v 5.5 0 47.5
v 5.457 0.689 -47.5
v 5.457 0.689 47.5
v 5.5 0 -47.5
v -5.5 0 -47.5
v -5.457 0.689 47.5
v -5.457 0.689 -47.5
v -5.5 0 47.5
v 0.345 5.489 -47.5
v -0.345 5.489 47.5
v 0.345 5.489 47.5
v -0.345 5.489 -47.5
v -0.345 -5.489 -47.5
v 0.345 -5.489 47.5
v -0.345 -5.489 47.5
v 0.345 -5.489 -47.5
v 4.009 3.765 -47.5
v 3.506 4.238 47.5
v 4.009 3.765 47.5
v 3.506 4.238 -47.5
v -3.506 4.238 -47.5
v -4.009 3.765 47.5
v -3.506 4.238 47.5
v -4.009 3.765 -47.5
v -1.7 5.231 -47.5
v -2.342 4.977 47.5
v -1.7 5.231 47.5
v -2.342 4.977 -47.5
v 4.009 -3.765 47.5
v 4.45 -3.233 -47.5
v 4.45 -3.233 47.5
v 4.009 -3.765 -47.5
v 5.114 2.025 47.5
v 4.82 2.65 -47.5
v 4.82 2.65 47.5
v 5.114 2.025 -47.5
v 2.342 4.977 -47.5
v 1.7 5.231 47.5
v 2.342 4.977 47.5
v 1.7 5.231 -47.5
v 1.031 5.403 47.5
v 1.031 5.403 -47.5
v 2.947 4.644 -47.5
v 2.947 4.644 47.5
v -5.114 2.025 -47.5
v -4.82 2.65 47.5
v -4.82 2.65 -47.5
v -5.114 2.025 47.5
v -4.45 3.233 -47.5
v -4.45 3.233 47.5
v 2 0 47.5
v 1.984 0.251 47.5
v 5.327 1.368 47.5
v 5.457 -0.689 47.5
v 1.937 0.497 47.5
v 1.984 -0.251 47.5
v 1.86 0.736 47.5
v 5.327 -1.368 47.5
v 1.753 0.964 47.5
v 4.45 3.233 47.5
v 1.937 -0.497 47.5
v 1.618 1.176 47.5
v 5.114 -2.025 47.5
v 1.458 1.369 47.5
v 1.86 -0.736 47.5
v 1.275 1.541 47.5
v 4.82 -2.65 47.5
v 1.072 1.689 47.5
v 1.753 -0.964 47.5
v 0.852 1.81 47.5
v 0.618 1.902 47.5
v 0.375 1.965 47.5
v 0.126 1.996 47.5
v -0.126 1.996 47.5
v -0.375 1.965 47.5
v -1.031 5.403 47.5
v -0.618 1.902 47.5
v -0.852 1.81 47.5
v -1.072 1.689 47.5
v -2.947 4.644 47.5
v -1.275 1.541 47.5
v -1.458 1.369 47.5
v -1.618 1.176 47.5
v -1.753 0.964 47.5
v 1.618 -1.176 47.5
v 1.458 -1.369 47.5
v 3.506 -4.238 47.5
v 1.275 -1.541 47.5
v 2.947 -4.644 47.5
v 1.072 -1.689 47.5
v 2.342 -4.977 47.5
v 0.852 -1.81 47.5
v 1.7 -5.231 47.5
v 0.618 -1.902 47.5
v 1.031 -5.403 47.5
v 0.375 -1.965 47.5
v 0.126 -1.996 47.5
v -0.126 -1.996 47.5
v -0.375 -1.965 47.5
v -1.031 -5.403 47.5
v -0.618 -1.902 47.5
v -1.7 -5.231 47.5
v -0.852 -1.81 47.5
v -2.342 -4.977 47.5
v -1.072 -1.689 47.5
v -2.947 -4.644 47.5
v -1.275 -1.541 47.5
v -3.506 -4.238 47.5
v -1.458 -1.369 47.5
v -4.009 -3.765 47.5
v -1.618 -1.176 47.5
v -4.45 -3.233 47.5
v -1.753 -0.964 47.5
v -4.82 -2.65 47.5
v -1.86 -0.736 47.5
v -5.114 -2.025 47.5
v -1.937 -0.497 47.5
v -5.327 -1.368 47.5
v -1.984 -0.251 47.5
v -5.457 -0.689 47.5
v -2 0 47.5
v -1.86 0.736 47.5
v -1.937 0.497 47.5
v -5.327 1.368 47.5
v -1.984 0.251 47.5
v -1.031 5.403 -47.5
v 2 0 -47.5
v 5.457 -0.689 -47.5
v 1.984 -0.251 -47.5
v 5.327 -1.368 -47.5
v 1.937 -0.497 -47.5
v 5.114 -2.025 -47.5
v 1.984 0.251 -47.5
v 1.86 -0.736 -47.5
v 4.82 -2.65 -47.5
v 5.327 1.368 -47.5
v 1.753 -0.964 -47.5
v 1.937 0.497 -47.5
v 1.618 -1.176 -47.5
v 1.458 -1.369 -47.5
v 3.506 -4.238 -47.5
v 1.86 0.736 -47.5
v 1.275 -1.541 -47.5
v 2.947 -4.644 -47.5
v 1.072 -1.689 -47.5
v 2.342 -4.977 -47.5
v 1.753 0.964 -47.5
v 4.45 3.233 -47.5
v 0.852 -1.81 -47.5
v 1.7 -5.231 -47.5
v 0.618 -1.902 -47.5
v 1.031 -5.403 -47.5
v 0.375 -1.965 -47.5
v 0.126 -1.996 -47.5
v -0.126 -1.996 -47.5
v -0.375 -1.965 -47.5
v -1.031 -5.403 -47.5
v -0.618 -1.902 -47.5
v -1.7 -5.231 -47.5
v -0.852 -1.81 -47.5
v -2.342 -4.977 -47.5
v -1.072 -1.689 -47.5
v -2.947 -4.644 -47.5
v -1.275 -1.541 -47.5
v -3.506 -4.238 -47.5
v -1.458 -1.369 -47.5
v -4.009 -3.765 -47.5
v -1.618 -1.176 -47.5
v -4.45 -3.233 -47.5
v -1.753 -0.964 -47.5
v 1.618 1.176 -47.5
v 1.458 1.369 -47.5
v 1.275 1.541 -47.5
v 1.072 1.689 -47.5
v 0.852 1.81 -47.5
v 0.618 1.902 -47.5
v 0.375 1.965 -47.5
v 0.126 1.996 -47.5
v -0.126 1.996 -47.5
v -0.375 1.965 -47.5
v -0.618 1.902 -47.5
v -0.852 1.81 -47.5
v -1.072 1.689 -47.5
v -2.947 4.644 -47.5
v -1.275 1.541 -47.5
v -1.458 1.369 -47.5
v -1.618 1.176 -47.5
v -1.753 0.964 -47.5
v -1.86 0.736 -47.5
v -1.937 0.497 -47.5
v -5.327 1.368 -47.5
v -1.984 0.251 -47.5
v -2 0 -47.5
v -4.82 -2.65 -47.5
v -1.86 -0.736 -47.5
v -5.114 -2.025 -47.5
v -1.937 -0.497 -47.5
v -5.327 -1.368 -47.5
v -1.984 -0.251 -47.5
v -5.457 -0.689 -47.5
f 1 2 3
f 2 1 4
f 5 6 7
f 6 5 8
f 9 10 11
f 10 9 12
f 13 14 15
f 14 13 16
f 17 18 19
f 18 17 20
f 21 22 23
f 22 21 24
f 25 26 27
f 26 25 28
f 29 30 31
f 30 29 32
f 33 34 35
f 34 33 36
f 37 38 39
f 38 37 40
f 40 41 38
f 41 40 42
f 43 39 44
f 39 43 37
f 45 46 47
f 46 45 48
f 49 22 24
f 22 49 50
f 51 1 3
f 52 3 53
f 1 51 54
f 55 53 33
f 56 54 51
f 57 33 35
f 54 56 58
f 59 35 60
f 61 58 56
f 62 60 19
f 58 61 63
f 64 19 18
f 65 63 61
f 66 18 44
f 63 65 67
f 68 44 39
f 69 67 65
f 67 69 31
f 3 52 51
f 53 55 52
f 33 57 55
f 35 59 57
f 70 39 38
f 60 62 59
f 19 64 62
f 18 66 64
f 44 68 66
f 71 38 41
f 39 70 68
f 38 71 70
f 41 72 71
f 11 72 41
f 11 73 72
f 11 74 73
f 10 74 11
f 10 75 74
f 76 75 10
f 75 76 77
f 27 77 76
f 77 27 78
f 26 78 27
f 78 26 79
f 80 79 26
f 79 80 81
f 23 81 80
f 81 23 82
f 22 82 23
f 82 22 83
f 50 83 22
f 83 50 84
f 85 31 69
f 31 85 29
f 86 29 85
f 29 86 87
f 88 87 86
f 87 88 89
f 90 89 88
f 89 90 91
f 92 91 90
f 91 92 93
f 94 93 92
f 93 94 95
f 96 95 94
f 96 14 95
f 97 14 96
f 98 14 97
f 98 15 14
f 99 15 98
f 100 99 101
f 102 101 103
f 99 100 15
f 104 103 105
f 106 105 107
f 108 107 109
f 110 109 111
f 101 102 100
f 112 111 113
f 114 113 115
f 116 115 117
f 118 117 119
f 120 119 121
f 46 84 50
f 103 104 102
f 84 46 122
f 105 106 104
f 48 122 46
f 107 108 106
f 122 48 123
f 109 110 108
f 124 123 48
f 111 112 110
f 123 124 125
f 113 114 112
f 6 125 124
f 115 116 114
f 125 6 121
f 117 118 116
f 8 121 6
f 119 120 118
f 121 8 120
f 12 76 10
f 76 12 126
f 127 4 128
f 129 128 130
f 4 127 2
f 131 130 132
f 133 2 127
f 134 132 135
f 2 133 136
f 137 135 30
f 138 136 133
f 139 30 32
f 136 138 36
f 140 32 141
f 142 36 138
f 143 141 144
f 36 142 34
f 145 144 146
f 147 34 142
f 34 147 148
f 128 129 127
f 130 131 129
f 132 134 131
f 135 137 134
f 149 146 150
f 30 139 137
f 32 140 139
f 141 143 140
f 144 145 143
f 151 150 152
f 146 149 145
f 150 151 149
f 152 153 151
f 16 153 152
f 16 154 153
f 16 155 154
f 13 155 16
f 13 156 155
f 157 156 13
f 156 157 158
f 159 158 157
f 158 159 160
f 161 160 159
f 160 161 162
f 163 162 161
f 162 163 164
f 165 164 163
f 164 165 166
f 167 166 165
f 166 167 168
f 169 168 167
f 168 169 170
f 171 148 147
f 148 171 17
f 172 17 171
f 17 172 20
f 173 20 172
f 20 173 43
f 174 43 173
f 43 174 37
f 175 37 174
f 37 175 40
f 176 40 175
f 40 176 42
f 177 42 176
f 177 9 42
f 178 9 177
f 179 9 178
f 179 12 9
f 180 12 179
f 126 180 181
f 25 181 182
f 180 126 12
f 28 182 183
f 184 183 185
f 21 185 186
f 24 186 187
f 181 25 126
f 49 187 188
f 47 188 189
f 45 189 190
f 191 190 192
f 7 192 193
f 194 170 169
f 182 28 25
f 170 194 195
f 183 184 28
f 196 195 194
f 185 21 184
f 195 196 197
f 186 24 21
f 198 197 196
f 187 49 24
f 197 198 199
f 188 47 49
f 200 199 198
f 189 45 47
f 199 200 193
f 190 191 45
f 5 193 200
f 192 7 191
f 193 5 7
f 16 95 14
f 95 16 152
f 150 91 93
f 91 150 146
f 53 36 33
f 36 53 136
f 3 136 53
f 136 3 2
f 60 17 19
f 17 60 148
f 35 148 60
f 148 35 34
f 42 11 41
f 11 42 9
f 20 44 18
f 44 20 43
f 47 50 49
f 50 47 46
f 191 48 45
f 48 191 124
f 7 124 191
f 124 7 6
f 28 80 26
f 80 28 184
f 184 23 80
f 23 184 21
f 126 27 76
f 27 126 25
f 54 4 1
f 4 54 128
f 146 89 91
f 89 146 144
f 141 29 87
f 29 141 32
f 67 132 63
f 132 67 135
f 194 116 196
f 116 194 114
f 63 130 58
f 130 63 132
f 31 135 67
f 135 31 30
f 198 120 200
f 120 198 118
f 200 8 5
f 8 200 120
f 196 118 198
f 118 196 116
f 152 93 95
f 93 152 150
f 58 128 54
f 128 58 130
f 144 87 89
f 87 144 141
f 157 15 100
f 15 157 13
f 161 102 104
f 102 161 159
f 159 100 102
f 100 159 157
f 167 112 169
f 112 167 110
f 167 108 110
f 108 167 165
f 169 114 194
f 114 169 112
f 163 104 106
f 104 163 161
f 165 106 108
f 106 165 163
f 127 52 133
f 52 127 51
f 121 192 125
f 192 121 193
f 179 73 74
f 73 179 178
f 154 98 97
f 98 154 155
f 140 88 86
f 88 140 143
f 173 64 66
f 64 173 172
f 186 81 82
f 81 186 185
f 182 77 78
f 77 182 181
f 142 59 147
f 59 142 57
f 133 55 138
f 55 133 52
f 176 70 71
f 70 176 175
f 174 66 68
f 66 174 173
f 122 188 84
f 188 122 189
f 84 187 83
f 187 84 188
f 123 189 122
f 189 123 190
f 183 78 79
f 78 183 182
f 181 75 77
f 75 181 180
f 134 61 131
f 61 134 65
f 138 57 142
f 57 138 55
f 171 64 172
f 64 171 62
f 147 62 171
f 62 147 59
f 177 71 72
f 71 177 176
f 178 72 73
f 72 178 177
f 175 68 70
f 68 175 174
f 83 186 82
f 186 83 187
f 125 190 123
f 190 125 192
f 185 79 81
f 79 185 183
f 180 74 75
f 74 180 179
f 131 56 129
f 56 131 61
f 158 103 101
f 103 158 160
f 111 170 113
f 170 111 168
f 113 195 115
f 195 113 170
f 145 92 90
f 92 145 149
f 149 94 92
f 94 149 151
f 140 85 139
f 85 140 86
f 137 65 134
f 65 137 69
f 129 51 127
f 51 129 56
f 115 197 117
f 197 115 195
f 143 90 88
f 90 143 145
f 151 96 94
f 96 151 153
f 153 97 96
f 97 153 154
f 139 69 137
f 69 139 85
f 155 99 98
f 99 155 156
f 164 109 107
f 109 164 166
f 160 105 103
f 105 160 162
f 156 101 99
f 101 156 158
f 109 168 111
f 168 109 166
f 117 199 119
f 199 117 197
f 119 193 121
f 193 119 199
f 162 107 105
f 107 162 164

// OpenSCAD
$fn = 50;


difference() {
	union() {
		translate(v = [0, 0, -47.5000000000]) {
			cylinder(h = 95, r = 5.5000000000);
		}
	}
	union() {
		translate(v = [0, 0, -100.0000000000]) {
			cylinder(h = 200, r = 2);
		}
	}
}
